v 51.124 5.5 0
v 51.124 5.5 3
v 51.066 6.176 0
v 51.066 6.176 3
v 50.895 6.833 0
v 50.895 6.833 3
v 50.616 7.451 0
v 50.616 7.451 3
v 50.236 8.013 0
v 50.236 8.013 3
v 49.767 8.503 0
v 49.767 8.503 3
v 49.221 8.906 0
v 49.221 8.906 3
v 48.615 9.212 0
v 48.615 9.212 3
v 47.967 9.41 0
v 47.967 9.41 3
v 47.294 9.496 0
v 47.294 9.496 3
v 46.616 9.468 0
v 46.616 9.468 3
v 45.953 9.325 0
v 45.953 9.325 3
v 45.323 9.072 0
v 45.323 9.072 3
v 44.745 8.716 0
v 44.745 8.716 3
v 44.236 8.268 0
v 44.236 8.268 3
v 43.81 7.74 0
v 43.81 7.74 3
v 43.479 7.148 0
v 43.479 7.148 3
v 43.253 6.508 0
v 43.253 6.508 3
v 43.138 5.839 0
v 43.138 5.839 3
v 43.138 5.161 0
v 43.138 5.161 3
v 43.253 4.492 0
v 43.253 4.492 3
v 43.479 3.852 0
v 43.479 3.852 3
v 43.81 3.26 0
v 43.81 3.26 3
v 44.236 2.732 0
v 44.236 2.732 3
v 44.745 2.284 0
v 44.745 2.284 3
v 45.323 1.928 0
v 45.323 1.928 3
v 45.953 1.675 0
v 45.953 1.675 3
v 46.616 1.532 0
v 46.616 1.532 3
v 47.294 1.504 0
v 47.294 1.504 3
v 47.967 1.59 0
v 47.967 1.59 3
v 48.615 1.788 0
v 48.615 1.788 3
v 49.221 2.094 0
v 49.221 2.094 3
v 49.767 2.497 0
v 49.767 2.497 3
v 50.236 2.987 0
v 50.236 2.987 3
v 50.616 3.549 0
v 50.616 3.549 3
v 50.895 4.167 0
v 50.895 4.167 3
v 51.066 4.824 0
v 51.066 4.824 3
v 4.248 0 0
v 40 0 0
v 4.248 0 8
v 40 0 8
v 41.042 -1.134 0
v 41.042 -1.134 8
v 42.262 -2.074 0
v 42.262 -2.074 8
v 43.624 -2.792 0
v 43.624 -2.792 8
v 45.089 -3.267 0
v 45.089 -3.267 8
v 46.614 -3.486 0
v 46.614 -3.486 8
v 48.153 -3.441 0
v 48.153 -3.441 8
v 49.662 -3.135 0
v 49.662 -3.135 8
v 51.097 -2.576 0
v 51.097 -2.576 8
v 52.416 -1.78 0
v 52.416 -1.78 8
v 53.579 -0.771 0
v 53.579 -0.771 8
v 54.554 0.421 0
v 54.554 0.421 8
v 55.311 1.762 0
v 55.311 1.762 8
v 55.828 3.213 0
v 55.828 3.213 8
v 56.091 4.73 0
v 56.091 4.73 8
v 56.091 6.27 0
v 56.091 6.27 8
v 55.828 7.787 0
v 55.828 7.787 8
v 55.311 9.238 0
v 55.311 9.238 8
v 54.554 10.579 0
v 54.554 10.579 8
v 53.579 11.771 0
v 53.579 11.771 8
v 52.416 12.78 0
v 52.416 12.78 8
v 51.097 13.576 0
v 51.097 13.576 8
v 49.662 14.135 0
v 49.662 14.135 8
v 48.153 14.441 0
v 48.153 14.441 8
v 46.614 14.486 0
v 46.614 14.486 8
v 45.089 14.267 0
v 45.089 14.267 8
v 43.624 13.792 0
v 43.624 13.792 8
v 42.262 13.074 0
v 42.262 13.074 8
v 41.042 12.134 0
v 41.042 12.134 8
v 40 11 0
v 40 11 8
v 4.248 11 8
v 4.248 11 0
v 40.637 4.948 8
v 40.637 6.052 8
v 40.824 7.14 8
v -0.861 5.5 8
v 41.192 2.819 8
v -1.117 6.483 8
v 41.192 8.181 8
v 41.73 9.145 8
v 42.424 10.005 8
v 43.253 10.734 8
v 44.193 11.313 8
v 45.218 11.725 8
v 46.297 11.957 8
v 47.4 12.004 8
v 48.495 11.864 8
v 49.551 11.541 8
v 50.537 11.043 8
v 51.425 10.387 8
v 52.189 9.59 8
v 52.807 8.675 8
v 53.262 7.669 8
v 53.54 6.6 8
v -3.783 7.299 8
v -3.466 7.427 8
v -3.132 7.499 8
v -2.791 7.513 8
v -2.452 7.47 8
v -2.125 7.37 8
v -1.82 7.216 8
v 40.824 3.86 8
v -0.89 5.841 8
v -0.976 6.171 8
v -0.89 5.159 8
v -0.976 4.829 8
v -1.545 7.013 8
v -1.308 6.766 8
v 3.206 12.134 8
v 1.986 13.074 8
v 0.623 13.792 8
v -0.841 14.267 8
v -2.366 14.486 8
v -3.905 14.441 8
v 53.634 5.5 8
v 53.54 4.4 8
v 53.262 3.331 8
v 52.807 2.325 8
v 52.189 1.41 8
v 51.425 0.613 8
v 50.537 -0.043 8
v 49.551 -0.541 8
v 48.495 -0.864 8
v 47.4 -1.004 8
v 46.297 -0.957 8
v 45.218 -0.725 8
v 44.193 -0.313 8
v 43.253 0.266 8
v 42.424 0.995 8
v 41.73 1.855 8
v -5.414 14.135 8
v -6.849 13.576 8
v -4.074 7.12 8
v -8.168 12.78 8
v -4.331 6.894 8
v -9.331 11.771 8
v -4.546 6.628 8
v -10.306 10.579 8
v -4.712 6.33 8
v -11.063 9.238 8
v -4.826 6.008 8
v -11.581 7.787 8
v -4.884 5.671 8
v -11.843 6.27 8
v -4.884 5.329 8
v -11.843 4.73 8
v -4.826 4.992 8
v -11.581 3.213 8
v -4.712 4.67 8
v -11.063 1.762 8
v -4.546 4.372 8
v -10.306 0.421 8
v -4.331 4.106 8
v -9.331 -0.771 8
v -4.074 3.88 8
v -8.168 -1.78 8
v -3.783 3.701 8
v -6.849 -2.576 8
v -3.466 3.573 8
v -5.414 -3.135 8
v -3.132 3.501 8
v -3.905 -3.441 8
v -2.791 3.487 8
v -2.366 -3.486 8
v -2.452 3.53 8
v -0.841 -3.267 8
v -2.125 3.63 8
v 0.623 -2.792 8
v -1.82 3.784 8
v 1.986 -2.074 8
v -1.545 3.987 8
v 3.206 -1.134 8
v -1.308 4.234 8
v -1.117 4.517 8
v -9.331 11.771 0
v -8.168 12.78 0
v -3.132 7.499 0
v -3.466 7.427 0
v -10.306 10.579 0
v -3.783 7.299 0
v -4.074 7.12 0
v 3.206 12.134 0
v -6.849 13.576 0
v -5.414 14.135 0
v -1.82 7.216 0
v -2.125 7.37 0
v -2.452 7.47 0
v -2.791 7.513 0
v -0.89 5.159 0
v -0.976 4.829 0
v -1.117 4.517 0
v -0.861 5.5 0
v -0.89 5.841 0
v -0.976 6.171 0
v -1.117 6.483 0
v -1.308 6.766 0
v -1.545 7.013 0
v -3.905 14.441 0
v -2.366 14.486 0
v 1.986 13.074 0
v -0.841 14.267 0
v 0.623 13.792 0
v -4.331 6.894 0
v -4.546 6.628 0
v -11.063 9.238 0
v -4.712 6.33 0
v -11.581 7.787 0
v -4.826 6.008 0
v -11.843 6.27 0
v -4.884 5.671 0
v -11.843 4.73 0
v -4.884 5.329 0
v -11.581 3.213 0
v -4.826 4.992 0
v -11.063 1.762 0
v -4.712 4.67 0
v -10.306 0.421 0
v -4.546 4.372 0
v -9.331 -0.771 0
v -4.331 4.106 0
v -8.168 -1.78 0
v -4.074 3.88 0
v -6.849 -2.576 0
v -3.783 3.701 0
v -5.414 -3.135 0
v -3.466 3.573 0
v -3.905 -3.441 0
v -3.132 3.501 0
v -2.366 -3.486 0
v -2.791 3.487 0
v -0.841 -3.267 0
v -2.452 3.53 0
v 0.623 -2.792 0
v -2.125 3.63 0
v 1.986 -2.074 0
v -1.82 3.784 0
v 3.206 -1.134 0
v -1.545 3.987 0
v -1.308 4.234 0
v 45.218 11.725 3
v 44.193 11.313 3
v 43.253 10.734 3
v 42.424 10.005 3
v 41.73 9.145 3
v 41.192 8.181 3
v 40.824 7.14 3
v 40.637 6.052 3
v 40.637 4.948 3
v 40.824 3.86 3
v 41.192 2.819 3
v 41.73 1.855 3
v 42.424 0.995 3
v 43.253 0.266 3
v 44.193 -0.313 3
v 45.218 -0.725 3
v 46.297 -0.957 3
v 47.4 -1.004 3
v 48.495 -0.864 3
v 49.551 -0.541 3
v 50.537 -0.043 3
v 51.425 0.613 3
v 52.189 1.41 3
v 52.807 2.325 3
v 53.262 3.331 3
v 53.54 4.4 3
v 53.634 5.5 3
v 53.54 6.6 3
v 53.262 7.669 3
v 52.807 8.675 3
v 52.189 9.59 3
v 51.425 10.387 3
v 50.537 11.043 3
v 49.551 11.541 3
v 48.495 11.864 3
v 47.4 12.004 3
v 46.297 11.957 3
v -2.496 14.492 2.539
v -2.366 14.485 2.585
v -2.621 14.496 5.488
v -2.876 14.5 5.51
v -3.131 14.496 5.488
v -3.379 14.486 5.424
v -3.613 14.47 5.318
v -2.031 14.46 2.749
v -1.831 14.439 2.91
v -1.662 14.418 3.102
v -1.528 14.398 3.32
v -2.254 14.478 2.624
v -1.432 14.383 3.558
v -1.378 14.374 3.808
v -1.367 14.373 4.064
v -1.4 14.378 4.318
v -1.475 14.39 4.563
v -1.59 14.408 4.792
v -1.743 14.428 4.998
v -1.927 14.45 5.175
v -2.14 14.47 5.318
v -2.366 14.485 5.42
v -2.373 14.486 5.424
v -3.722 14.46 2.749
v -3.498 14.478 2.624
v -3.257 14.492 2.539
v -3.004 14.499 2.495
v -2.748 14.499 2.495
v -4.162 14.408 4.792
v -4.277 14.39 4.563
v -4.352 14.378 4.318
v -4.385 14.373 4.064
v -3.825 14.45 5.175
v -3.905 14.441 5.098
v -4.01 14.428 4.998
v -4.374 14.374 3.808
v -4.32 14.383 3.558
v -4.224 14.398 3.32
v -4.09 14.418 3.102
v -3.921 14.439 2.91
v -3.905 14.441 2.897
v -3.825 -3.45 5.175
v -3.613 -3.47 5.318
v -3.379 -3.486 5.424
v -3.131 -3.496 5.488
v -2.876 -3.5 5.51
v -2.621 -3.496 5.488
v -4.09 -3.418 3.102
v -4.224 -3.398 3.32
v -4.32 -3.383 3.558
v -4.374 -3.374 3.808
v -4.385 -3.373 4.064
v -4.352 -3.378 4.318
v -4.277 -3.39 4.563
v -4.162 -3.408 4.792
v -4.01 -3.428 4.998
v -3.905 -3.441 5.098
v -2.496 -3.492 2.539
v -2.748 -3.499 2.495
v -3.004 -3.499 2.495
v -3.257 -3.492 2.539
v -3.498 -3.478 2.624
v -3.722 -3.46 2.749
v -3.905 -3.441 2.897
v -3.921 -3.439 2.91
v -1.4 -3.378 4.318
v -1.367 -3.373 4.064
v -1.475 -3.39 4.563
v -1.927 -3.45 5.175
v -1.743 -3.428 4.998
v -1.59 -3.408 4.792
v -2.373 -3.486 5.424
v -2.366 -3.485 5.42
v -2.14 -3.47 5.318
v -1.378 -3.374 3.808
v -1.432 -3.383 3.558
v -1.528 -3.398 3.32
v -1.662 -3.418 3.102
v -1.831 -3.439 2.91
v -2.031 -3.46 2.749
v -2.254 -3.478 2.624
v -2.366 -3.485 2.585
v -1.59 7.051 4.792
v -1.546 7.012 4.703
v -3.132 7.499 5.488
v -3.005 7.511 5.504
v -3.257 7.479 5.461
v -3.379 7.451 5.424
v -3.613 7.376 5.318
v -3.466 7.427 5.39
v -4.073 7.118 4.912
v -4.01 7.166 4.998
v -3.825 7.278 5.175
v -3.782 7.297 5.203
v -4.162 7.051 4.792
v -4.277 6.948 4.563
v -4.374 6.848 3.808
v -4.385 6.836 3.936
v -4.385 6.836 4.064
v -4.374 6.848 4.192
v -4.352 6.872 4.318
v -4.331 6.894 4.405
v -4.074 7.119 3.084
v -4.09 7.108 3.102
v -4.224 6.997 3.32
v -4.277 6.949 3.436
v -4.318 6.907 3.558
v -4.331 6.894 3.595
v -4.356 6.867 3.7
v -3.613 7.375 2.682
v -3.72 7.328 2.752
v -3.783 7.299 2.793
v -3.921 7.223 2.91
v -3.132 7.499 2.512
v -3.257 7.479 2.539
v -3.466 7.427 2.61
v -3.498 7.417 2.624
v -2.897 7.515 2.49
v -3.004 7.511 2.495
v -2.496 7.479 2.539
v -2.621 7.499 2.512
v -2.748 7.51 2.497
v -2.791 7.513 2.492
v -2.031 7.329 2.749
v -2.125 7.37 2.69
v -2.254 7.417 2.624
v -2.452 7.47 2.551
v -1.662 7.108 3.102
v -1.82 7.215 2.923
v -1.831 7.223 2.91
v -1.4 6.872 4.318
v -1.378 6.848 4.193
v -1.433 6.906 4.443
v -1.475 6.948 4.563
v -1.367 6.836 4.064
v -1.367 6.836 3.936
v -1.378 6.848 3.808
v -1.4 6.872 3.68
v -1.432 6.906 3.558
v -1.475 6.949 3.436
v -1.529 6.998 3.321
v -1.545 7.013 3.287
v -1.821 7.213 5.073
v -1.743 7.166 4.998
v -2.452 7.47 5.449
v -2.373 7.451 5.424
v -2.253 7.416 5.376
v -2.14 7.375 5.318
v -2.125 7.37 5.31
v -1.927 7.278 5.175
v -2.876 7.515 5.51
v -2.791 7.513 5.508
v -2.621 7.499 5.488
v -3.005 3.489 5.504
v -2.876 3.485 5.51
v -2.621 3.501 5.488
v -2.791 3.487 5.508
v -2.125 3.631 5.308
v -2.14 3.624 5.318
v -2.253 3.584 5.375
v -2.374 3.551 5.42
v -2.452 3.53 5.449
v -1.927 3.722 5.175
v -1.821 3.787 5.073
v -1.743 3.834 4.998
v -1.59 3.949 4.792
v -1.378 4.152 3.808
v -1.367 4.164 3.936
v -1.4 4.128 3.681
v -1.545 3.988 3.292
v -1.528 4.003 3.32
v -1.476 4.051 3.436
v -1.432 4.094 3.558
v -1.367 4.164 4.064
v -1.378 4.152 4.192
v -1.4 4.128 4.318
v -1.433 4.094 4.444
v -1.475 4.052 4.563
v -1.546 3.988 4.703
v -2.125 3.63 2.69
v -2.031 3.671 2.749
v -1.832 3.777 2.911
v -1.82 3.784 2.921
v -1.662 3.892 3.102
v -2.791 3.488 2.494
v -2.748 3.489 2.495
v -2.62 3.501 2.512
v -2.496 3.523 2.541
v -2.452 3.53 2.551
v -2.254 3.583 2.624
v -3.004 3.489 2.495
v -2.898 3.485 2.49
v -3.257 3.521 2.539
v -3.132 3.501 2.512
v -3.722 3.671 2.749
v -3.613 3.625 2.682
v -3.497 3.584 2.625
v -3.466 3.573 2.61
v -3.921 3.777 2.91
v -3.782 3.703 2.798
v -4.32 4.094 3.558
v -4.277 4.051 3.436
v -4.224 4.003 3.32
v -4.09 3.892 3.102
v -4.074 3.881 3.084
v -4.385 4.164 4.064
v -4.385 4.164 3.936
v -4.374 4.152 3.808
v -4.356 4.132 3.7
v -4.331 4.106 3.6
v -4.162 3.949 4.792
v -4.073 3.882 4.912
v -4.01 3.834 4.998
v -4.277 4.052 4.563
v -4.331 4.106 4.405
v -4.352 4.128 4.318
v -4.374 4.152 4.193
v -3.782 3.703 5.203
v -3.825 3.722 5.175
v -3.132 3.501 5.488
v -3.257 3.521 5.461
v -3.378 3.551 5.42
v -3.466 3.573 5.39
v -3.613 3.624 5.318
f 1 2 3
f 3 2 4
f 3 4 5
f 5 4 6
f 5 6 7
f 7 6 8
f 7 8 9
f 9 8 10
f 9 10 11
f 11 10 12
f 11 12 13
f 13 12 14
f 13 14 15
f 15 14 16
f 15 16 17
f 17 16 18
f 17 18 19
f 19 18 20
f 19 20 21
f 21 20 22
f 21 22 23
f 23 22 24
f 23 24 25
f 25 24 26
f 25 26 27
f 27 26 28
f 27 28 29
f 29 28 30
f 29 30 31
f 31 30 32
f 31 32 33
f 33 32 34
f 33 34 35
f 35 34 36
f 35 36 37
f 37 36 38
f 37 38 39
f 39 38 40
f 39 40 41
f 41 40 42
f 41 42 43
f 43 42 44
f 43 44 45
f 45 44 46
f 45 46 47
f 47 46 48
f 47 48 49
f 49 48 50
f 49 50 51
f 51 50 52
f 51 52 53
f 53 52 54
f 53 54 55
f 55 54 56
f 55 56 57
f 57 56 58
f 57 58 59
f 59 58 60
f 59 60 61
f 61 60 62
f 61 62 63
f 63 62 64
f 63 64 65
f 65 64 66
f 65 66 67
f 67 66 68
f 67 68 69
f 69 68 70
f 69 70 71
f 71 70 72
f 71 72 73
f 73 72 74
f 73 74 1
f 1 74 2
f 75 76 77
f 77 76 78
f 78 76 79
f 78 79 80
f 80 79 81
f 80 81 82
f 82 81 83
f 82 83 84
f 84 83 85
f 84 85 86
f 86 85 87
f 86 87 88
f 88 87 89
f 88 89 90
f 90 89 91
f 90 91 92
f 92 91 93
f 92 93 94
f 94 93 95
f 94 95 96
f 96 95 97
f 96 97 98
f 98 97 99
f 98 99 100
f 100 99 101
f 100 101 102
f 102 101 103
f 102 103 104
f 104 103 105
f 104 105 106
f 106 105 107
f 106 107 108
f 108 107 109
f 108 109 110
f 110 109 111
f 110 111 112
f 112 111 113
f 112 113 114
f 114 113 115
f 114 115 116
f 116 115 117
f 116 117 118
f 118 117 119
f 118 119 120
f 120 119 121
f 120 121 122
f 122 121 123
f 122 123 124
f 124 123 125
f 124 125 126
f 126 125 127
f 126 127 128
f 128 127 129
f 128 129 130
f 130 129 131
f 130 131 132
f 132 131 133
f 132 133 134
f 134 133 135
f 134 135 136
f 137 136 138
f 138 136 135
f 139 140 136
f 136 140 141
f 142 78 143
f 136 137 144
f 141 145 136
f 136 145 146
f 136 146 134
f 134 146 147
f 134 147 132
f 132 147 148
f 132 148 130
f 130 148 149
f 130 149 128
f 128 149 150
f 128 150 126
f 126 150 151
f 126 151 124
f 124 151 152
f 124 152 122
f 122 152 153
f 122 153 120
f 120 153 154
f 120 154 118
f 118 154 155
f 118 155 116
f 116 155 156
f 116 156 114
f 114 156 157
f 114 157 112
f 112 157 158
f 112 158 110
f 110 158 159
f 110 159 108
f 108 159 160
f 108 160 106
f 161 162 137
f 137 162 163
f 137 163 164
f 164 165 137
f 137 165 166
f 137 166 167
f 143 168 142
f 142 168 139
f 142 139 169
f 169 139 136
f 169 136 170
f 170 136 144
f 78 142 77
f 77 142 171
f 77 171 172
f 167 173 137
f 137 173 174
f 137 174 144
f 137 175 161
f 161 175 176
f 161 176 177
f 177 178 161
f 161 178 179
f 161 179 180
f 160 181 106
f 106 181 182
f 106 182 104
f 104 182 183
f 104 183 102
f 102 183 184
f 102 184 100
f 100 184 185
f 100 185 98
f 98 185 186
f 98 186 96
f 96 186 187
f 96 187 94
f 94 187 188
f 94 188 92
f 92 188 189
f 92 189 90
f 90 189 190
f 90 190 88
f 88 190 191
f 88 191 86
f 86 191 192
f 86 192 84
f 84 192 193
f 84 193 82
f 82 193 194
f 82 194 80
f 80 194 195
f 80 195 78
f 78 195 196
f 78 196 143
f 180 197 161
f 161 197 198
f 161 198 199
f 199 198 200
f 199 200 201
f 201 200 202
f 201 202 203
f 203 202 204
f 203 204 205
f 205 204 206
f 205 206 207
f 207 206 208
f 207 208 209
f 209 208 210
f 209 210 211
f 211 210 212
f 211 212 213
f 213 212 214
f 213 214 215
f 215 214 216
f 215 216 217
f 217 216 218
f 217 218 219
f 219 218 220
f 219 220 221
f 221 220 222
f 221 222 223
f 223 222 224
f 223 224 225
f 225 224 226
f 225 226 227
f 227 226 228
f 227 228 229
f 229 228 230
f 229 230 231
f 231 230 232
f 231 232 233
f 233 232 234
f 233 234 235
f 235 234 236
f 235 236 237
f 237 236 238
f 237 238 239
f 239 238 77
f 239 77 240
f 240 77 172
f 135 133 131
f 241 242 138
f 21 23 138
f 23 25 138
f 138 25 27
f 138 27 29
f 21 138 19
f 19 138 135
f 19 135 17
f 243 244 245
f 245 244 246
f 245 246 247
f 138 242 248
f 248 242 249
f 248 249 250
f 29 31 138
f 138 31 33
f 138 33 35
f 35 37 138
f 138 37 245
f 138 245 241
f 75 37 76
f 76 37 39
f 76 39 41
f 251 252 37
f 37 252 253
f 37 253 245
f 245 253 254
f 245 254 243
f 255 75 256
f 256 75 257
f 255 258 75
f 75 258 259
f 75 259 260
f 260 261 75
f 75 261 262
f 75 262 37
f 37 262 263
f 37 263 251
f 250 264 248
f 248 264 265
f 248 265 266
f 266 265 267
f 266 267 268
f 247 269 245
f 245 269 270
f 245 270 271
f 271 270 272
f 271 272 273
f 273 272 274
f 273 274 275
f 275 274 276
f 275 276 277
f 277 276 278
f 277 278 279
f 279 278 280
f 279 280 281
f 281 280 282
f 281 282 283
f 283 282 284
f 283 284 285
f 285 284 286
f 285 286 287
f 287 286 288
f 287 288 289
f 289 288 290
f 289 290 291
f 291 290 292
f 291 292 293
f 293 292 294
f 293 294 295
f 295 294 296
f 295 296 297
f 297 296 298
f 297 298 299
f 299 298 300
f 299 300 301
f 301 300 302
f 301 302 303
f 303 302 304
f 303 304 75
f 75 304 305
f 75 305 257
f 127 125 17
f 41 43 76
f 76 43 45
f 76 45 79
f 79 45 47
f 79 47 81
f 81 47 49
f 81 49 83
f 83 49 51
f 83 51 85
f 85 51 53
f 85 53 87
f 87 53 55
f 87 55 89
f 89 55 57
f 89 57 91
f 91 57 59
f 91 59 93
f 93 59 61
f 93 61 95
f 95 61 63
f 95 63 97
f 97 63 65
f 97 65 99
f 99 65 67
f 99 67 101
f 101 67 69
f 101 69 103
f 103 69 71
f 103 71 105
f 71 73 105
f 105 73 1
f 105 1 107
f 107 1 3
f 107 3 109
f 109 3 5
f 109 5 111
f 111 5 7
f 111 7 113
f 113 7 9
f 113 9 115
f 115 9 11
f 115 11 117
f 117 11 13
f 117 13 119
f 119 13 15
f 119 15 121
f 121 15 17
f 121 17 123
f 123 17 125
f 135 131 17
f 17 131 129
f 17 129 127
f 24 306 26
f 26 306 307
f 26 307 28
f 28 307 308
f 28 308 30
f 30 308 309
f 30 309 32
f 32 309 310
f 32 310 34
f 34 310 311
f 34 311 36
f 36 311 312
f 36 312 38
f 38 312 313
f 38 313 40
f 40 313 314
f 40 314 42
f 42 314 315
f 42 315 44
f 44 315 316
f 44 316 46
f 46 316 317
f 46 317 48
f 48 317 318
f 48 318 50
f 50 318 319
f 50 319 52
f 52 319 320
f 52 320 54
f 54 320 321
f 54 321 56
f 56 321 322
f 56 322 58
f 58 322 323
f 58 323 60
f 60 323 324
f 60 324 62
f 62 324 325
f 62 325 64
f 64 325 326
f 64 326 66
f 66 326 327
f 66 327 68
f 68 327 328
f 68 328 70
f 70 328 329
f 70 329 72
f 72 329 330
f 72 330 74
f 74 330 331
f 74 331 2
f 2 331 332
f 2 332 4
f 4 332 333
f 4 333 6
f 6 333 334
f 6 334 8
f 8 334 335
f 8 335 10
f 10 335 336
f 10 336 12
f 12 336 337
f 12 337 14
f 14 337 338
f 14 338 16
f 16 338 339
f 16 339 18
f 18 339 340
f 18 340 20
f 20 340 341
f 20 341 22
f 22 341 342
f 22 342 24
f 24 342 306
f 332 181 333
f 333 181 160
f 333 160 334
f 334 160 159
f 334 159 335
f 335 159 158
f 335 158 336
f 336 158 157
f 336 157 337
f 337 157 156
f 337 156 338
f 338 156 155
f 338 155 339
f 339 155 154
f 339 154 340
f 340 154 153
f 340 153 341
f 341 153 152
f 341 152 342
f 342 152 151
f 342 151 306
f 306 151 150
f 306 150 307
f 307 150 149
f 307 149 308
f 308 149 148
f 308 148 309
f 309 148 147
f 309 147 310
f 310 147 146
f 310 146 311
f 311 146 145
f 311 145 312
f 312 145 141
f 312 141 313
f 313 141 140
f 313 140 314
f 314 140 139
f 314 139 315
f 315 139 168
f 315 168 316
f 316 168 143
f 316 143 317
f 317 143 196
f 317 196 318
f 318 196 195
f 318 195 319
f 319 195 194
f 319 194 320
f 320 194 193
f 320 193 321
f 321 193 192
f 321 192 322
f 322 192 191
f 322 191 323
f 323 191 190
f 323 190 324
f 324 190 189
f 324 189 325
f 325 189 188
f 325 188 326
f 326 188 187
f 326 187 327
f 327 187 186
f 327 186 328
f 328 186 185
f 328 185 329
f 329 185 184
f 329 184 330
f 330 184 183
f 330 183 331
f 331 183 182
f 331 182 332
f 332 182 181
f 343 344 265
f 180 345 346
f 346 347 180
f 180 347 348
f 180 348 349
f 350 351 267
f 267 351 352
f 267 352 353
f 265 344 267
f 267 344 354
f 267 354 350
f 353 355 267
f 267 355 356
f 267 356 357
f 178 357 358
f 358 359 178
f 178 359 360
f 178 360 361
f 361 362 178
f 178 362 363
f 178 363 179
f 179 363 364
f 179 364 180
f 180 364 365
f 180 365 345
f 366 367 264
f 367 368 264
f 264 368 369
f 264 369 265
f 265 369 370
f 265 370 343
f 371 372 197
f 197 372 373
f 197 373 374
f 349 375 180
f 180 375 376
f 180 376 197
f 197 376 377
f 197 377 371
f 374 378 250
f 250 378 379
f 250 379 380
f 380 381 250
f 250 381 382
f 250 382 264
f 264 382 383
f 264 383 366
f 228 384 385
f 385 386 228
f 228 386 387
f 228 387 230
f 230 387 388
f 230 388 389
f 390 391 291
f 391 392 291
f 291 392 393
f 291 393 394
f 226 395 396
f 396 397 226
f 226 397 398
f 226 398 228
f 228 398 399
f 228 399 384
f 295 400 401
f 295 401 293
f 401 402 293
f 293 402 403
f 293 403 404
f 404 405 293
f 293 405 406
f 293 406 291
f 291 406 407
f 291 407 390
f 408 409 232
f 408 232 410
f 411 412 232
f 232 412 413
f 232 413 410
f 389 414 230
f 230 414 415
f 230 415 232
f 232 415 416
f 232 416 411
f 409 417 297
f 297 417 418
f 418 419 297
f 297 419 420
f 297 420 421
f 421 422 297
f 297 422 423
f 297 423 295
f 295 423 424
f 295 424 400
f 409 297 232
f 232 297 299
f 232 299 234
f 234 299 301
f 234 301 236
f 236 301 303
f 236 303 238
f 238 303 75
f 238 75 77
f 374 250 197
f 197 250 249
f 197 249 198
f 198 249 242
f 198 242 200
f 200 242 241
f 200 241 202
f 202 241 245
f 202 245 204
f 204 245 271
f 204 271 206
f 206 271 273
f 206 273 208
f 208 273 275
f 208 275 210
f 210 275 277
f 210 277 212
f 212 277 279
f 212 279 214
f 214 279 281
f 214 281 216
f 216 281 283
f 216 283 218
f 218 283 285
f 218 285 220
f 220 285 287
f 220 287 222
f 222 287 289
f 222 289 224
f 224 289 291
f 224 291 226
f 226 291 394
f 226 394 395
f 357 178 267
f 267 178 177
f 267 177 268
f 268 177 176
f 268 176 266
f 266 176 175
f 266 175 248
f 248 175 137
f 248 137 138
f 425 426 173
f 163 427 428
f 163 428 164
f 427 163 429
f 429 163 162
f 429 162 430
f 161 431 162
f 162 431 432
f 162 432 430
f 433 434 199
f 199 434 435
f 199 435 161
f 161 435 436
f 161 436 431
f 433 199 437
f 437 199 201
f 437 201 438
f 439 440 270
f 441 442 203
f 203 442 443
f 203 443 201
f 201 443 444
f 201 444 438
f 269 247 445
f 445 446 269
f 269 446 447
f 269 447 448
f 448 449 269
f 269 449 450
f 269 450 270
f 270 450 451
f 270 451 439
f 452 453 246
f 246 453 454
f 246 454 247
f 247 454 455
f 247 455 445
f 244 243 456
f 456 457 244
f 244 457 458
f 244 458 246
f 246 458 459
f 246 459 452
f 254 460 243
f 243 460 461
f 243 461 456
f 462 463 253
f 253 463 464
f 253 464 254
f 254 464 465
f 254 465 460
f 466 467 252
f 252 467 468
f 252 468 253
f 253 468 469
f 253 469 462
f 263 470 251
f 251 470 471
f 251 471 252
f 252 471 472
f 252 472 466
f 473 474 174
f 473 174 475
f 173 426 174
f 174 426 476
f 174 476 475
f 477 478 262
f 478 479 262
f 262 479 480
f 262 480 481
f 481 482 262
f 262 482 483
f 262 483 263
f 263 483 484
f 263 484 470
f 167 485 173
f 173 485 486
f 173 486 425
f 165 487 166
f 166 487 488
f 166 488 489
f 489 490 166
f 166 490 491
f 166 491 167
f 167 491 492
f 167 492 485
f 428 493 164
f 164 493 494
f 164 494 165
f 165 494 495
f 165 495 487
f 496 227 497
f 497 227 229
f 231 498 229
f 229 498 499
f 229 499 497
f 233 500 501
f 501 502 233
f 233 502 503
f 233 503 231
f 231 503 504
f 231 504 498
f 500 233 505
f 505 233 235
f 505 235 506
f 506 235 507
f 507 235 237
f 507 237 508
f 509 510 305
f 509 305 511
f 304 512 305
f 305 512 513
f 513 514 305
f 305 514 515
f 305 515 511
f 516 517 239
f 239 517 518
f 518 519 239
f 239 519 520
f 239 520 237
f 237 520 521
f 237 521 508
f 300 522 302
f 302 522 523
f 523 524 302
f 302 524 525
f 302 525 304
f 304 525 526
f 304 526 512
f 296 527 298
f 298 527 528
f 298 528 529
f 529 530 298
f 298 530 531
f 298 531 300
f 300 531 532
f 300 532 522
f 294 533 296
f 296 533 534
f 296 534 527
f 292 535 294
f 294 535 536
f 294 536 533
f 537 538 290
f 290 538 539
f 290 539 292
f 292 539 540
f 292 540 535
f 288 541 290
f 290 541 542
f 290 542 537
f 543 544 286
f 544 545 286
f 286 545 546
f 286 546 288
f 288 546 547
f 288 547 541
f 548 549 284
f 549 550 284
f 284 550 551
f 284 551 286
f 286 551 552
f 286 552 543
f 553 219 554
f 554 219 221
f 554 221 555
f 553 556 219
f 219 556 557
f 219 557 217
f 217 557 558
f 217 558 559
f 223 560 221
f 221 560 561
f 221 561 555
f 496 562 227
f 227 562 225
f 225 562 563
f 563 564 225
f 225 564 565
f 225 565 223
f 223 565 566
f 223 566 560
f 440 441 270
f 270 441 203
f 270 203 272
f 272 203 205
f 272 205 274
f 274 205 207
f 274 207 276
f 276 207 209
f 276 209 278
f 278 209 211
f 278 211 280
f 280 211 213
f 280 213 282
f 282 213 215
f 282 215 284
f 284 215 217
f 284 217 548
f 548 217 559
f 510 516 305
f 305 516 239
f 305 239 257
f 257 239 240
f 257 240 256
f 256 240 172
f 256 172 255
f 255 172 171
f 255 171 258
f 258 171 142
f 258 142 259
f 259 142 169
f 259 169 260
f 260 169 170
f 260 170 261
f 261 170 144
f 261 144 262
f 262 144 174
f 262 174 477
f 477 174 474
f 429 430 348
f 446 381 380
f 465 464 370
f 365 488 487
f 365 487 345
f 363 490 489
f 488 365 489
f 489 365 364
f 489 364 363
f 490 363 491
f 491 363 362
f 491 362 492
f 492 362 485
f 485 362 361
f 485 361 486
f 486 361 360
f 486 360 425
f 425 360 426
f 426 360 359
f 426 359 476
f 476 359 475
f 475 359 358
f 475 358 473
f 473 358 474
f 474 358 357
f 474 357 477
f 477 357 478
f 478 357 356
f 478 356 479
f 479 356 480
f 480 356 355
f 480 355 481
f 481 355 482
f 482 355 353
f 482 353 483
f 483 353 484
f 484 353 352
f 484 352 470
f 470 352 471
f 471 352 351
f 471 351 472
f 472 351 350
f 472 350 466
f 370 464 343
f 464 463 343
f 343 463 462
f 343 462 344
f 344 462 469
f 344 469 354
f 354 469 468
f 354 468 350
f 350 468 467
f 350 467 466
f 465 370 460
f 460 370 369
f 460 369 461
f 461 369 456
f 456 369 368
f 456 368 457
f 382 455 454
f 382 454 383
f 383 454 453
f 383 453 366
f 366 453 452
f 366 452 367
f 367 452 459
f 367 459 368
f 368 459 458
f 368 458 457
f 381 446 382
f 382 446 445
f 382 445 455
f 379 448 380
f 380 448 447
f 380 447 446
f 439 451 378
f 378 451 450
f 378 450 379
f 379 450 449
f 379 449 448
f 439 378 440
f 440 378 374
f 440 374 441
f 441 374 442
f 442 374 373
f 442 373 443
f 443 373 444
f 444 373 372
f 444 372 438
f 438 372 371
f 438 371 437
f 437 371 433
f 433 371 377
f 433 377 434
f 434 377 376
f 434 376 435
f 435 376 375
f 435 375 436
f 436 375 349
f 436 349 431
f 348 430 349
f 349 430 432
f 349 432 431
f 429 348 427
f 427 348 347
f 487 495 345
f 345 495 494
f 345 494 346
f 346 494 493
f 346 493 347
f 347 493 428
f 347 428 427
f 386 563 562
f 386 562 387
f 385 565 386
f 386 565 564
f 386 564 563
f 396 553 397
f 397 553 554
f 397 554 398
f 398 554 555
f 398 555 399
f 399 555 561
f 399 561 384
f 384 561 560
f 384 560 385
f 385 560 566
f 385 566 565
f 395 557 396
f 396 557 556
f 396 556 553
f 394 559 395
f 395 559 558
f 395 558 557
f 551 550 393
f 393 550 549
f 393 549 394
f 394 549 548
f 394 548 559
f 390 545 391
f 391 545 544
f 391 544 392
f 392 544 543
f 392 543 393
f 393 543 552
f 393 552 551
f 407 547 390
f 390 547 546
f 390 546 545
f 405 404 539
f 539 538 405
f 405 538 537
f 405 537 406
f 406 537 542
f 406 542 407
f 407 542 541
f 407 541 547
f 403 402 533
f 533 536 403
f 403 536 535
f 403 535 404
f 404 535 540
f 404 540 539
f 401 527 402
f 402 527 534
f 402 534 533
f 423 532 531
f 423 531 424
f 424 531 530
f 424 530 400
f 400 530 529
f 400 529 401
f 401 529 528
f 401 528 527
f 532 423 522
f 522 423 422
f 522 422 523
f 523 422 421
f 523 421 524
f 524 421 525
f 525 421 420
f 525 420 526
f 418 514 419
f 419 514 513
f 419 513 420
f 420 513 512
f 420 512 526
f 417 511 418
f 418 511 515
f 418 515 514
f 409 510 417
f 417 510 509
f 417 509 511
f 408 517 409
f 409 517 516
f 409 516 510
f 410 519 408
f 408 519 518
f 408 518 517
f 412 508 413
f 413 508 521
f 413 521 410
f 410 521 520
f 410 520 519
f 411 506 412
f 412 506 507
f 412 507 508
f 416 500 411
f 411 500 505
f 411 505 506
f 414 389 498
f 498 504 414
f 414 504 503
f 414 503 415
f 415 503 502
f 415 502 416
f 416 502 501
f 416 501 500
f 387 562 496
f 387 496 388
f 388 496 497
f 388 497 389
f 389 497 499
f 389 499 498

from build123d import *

# Parameters (mm, degrees)
BOSS_EXTRUDE1_DEPTH      = 8
SKETCH3_R                = 4
CUT_EXTRUDE1_DEPTH       = 59.516173282
SKETCH4_R                = 6.51
CUT_EXTRUDE2_DEPTH       = 5
SKETCH12_R               = 9
BOSS_EXTRUDE2_DEPTH      = 8
SKETCH13_R               = 2.015
CUT_EXTRUDE8_DEPTH       = 59.516173282
CUT_EXTRUDE10_DEPTH      = 58.40115448
CUT_EXTRUDE10_DEPTH_BACK = 58.40115448
SKETCH14_R               = 1.51


with BuildPart() as part:
    # Sketch1 → Boss-Extrude1 (new body)
    with BuildSketch(Plane.XY):
        with BuildLine():
            Line((0, 0), (40, 0))
            ThreePointArc((40, 0), (56.123903424, 5.5), (40, 11))
            Line((40, 11), (0, 11))
            Line((0, 11), (0, 0))
        make_face()
    extrude(amount=BOSS_EXTRUDE1_DEPTH)

    # Sketch3 → Cut-Extrude1 (cut, through all)
    with BuildSketch(Plane.XY.offset(8)):
        with Locations((47.123903424, 5.5)):
            Circle(SKETCH3_R)
    extrude(amount=-CUT_EXTRUDE1_DEPTH, mode=Mode.SUBTRACT)

    # Sketch4 → Cut-Extrude2 (cut)
    with BuildSketch(Plane.XY.offset(8)):
        with Locations((47.123903424, 5.5)):
            Circle(SKETCH4_R)
    extrude(amount=-CUT_EXTRUDE2_DEPTH, mode=Mode.SUBTRACT)

    # Sketch12 → Boss-Extrude2 (add)
    with BuildSketch(Plane.XY.offset(8)):
        with Locations((-2.876096576, 5.5)):
            Circle(SKETCH12_R)
    extrude(amount=-BOSS_EXTRUDE2_DEPTH)

    # Sketch13 → Cut-Extrude8 (cut, through all)
    with BuildSketch(Plane.XY.offset(8)):
        with Locations((-2.876096576, 5.5)):
            Circle(SKETCH13_R)
    extrude(amount=-CUT_EXTRUDE8_DEPTH, mode=Mode.SUBTRACT)

    # Sketch14 → Cut-Extrude10 (cut, two sides: drawn at the far end of the back side and taken through both)
    with BuildSketch(Plane(origin=(0, 5.5, 0), x_dir=(1, 0, 0), z_dir=(0, 1, 0)).offset(-CUT_EXTRUDE10_DEPTH_BACK)):
        with Locations(Location((-2.876096576, -4, 0), (0, 0, 270))):
            Circle(SKETCH14_R)
    extrude(amount=CUT_EXTRUDE10_DEPTH + CUT_EXTRUDE10_DEPTH_BACK, mode=Mode.SUBTRACT)


solid = part.part
